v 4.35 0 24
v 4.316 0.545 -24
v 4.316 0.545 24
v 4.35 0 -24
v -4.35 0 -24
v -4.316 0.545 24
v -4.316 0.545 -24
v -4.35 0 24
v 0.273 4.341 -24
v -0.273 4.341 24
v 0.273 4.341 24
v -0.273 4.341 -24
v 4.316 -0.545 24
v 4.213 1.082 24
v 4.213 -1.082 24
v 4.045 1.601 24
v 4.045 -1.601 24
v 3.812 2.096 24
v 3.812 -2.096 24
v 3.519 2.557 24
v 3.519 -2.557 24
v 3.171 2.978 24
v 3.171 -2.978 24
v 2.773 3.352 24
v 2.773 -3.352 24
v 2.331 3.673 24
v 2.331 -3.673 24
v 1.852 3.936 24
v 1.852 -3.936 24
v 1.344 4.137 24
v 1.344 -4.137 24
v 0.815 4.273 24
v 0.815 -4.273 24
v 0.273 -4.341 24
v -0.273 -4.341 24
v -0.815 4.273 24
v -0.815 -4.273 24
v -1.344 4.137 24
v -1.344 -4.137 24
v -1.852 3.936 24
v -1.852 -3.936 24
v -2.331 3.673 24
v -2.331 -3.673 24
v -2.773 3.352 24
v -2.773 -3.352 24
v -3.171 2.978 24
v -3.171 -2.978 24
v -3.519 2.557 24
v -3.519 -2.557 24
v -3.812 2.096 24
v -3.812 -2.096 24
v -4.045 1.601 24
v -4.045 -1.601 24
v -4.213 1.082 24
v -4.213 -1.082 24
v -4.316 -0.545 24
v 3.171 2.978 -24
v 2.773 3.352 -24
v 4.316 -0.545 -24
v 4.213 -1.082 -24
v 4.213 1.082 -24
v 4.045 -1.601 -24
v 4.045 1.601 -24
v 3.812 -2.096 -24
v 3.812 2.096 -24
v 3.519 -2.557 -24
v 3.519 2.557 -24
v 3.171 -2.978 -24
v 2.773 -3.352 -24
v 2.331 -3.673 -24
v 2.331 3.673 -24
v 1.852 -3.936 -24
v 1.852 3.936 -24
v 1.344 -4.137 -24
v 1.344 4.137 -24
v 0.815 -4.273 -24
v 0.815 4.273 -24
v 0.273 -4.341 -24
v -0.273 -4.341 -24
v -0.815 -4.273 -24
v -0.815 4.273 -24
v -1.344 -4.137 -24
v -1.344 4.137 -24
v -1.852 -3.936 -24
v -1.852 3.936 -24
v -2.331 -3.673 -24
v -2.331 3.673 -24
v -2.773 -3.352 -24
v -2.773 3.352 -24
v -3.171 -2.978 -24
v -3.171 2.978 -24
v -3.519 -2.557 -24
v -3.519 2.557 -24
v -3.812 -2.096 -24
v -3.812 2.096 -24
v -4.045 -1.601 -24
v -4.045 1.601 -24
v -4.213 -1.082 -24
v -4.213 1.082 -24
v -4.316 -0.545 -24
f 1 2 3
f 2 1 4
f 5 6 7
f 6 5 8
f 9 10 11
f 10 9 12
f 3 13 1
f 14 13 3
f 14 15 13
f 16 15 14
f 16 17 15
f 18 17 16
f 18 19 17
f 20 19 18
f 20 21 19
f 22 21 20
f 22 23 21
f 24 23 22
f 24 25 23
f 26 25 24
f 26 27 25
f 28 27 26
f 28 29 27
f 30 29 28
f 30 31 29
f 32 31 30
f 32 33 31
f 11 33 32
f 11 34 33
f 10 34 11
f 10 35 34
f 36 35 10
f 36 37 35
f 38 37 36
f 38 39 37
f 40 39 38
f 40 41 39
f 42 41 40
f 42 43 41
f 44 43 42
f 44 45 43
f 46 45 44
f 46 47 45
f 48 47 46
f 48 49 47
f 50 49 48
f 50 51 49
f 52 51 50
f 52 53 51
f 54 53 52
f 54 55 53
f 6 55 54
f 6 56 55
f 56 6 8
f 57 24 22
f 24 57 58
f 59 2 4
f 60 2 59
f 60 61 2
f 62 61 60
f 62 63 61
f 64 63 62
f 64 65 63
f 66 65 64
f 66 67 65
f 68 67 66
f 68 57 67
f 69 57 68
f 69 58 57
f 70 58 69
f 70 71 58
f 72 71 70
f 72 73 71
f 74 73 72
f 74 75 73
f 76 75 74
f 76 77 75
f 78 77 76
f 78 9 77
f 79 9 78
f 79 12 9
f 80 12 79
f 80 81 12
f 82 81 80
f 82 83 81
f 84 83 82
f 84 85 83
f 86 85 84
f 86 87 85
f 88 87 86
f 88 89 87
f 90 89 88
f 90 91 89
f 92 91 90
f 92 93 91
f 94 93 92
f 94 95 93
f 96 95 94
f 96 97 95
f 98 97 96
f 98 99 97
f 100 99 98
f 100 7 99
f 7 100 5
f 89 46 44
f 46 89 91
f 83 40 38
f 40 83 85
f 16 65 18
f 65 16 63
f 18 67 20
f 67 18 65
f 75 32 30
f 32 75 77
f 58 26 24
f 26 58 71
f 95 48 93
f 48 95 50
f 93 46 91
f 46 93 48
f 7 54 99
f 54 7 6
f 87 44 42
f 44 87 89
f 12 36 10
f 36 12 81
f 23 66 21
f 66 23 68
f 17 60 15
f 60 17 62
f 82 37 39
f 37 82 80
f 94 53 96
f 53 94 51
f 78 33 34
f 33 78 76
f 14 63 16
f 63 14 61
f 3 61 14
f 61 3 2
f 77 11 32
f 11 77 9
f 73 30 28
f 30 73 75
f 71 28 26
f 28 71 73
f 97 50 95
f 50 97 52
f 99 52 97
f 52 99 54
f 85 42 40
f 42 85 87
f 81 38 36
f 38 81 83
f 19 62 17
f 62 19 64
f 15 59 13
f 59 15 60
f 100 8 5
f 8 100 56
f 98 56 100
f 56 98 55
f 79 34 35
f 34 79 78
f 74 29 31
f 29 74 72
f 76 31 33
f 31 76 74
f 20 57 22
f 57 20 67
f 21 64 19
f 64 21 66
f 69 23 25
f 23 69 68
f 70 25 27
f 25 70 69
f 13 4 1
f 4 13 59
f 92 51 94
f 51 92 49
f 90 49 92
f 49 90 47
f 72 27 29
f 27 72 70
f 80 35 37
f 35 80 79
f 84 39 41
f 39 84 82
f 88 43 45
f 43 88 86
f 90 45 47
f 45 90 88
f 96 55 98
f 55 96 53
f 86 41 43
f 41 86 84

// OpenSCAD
$fn = 50;


difference() {
	union() {
		translate(v = [0, 0, -24.0000000000]) {
			cylinder(h = 48, r = 4.3500000000);
		}
	}
	union() {
		translate(v = [0, 0, -100.0000000000]) {
			cylinder(h = 200, r = 0);
		}
	}
}
